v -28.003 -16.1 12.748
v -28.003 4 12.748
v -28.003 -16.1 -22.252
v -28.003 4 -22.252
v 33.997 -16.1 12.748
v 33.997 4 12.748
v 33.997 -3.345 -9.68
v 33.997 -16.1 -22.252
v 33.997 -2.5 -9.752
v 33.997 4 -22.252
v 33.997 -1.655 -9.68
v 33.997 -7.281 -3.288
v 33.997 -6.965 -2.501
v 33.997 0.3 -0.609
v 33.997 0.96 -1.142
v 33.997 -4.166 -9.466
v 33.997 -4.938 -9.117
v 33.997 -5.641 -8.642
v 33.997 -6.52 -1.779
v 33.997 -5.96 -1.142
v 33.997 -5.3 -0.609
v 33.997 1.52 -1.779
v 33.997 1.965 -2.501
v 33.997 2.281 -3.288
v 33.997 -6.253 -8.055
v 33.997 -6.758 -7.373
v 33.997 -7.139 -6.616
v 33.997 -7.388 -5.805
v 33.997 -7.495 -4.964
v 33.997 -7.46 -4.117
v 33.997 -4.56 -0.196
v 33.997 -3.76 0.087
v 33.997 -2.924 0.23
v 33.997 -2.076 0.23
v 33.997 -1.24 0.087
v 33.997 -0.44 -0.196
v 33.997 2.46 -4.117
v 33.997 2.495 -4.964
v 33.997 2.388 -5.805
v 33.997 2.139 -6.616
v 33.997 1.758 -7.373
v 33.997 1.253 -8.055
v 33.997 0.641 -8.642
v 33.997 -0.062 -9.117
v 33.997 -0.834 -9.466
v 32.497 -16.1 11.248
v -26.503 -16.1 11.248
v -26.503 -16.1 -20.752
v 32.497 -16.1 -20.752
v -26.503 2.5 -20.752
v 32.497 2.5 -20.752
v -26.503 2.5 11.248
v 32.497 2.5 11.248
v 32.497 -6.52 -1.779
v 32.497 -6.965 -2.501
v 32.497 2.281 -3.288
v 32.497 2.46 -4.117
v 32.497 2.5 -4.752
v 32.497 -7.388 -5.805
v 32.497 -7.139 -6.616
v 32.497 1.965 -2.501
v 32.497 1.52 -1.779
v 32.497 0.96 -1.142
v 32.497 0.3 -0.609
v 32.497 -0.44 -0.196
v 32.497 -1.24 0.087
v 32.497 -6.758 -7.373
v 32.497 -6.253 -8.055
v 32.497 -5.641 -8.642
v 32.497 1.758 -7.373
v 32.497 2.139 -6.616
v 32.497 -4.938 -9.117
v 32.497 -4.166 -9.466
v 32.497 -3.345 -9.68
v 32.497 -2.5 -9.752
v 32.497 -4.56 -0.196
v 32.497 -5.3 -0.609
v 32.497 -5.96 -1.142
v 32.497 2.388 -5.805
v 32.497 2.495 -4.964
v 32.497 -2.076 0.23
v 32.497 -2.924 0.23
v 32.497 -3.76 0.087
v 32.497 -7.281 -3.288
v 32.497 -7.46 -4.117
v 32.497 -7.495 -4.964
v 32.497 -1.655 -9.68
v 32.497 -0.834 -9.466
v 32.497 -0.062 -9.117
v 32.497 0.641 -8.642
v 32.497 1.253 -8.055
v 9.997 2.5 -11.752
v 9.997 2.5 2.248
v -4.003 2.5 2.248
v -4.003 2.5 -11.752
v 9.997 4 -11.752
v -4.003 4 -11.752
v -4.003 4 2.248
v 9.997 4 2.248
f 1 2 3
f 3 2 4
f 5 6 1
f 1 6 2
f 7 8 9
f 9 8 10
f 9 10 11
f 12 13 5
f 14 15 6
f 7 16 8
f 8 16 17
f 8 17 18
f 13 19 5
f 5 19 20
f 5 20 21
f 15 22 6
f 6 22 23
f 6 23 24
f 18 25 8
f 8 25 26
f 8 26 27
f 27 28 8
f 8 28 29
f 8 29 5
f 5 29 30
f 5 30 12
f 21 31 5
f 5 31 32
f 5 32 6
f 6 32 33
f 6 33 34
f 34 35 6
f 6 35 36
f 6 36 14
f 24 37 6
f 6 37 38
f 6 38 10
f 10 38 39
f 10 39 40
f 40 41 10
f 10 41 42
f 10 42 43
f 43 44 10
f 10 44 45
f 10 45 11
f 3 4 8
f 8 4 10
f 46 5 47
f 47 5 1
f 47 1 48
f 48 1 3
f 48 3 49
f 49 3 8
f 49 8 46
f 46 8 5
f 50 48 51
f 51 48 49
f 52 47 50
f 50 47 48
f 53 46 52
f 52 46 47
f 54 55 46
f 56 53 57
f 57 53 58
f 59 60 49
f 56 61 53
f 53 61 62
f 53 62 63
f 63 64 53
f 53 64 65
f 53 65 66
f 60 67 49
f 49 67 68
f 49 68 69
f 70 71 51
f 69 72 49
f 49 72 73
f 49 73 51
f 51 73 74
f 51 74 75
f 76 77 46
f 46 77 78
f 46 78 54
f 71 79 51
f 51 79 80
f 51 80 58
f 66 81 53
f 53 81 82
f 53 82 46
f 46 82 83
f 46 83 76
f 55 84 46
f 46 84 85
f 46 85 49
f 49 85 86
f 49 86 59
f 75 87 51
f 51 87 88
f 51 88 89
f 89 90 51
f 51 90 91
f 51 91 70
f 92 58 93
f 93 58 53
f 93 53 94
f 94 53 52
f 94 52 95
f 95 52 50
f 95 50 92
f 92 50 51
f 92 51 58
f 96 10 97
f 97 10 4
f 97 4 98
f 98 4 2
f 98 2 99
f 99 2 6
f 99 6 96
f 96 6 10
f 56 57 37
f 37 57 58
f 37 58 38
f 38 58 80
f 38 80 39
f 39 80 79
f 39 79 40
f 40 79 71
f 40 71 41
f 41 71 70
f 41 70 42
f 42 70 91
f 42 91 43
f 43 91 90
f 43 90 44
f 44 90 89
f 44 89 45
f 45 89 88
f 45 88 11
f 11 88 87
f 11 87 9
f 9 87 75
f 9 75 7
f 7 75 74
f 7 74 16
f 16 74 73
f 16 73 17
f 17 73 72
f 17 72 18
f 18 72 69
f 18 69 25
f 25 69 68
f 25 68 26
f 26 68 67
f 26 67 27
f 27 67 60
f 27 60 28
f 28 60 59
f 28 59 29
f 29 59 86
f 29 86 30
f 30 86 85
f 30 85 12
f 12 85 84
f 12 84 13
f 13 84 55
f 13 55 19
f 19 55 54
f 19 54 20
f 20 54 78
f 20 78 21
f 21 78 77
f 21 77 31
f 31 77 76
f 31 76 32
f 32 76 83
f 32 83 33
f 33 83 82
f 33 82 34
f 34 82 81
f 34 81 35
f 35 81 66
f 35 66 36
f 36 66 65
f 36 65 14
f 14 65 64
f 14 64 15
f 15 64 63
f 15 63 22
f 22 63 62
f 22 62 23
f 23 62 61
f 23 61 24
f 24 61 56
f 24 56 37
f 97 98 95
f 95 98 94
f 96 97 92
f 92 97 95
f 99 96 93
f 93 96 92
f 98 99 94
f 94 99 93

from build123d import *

# Parameters (mm, degrees)
SKETCH_1_W          = 62
SKETCH_1_H          = 35
EXTRUDE_1_DEPTH     = 1.5
SKETCH_2_W          = 62
SKETCH_2_H          = 35
EXTRUDE_2_DEPTH     = 16.1
SKETCH_3_W          = 59
SKETCH_3_H          = 32
CUT_EXTRUDE_1_DEPTH = 41
SKETCH_4_W          = 62
SKETCH_4_H          = 35
SKETCH_4_W_2        = 59
SKETCH_4_H_2        = 32
EXTRUDE_3_DEPTH     = 1
SKETCH_5_W          = 62
SKETCH_5_H          = 35
EXTRUDE_4_DEPTH     = 1.5
SKETCH_8_R          = 5
CUT_EXTRUDE_3_DEPTH = 1.5
CUT_EXTRUDE_4_REACH = 22.1
SKETCH_10_W         = 14
SKETCH_10_H         = 14


with BuildPart() as part:
    # 草图1 → 凸台-拉伸1 (new body)
    with BuildSketch(Plane(origin=(0, 0, 0), x_dir=(1, 0, 0), z_dir=(0, 1, 0))):
        with Locations((2.996831225, 4.751847291)):
            Rectangle(SKETCH_1_W, SKETCH_1_H)
    extrude(amount=EXTRUDE_1_DEPTH)

    # 草图2 → 凸台-拉伸2 (add)
    with BuildSketch(Plane.XZ):
        with Locations((2.996831225, -4.751847291)):
            Rectangle(SKETCH_2_W, SKETCH_2_H)
    extrude(amount=EXTRUDE_2_DEPTH)

    # 草图3 → 切除-拉伸1 (cut)
    with BuildSketch(Plane.XZ.offset(16.1)):
        with Locations((2.996831225, -4.751847291)):
            Rectangle(SKETCH_3_W, SKETCH_3_H)
    extrude(amount=-CUT_EXTRUDE_1_DEPTH, mode=Mode.SUBTRACT)

    # 草图4 → 凸台-拉伸3 (add)
    with BuildSketch(Plane(origin=(0, 1.5, 0), x_dir=(1, 0, 0), z_dir=(0, 1, 0))):
        with Locations((2.996831225, 4.751847291)):
            Rectangle(SKETCH_4_W, SKETCH_4_H)
        with Locations((2.996831225, 4.751847291)):
            Rectangle(SKETCH_4_W_2, SKETCH_4_H_2, mode=Mode.SUBTRACT)
    extrude(amount=EXTRUDE_3_DEPTH)

    # 草图5 → 凸台-拉伸4 (add)
    with BuildSketch(Plane(origin=(0, 2.5, 0), x_dir=(1, 0, 0), z_dir=(0, 1, 0))):
        with Locations((2.996831225, 4.751847291)):
            Rectangle(SKETCH_5_W, SKETCH_5_H)
    extrude(amount=EXTRUDE_4_DEPTH)

    # 草图8 → 切除-拉伸3 (cut)
    with BuildSketch(Plane(origin=(33.996831225, 0, 0), x_dir=(0, 0, -1), z_dir=(1, 0, 0))):
        with Locations((4.751847291, -2.5)):
            Circle(SKETCH_8_R)
    extrude(amount=-CUT_EXTRUDE_3_DEPTH, mode=Mode.SUBTRACT)

    # 草图10 → 切除-拉伸4 (cut, up to next)
    with BuildSketch(Plane(origin=(0, 4, 0), x_dir=(1, 0, 0), z_dir=(0, 1, 0)), mode=Mode.PRIVATE) as cut_extrude_4_sk1:
        with Locations((2.996831225, 4.751847291)):
            Rectangle(SKETCH_10_W, SKETCH_10_H)
    cut_extrude_4_tool1 = extrude(cut_extrude_4_sk1.sketch, amount=-CUT_EXTRUDE_4_REACH, mode=Mode.PRIVATE) & part.part
    add(cut_extrude_4_tool1.solids().sort_by_distance((2.996831, 4, -4.751847))[0], mode=Mode.SUBTRACT)


solid = part.part
